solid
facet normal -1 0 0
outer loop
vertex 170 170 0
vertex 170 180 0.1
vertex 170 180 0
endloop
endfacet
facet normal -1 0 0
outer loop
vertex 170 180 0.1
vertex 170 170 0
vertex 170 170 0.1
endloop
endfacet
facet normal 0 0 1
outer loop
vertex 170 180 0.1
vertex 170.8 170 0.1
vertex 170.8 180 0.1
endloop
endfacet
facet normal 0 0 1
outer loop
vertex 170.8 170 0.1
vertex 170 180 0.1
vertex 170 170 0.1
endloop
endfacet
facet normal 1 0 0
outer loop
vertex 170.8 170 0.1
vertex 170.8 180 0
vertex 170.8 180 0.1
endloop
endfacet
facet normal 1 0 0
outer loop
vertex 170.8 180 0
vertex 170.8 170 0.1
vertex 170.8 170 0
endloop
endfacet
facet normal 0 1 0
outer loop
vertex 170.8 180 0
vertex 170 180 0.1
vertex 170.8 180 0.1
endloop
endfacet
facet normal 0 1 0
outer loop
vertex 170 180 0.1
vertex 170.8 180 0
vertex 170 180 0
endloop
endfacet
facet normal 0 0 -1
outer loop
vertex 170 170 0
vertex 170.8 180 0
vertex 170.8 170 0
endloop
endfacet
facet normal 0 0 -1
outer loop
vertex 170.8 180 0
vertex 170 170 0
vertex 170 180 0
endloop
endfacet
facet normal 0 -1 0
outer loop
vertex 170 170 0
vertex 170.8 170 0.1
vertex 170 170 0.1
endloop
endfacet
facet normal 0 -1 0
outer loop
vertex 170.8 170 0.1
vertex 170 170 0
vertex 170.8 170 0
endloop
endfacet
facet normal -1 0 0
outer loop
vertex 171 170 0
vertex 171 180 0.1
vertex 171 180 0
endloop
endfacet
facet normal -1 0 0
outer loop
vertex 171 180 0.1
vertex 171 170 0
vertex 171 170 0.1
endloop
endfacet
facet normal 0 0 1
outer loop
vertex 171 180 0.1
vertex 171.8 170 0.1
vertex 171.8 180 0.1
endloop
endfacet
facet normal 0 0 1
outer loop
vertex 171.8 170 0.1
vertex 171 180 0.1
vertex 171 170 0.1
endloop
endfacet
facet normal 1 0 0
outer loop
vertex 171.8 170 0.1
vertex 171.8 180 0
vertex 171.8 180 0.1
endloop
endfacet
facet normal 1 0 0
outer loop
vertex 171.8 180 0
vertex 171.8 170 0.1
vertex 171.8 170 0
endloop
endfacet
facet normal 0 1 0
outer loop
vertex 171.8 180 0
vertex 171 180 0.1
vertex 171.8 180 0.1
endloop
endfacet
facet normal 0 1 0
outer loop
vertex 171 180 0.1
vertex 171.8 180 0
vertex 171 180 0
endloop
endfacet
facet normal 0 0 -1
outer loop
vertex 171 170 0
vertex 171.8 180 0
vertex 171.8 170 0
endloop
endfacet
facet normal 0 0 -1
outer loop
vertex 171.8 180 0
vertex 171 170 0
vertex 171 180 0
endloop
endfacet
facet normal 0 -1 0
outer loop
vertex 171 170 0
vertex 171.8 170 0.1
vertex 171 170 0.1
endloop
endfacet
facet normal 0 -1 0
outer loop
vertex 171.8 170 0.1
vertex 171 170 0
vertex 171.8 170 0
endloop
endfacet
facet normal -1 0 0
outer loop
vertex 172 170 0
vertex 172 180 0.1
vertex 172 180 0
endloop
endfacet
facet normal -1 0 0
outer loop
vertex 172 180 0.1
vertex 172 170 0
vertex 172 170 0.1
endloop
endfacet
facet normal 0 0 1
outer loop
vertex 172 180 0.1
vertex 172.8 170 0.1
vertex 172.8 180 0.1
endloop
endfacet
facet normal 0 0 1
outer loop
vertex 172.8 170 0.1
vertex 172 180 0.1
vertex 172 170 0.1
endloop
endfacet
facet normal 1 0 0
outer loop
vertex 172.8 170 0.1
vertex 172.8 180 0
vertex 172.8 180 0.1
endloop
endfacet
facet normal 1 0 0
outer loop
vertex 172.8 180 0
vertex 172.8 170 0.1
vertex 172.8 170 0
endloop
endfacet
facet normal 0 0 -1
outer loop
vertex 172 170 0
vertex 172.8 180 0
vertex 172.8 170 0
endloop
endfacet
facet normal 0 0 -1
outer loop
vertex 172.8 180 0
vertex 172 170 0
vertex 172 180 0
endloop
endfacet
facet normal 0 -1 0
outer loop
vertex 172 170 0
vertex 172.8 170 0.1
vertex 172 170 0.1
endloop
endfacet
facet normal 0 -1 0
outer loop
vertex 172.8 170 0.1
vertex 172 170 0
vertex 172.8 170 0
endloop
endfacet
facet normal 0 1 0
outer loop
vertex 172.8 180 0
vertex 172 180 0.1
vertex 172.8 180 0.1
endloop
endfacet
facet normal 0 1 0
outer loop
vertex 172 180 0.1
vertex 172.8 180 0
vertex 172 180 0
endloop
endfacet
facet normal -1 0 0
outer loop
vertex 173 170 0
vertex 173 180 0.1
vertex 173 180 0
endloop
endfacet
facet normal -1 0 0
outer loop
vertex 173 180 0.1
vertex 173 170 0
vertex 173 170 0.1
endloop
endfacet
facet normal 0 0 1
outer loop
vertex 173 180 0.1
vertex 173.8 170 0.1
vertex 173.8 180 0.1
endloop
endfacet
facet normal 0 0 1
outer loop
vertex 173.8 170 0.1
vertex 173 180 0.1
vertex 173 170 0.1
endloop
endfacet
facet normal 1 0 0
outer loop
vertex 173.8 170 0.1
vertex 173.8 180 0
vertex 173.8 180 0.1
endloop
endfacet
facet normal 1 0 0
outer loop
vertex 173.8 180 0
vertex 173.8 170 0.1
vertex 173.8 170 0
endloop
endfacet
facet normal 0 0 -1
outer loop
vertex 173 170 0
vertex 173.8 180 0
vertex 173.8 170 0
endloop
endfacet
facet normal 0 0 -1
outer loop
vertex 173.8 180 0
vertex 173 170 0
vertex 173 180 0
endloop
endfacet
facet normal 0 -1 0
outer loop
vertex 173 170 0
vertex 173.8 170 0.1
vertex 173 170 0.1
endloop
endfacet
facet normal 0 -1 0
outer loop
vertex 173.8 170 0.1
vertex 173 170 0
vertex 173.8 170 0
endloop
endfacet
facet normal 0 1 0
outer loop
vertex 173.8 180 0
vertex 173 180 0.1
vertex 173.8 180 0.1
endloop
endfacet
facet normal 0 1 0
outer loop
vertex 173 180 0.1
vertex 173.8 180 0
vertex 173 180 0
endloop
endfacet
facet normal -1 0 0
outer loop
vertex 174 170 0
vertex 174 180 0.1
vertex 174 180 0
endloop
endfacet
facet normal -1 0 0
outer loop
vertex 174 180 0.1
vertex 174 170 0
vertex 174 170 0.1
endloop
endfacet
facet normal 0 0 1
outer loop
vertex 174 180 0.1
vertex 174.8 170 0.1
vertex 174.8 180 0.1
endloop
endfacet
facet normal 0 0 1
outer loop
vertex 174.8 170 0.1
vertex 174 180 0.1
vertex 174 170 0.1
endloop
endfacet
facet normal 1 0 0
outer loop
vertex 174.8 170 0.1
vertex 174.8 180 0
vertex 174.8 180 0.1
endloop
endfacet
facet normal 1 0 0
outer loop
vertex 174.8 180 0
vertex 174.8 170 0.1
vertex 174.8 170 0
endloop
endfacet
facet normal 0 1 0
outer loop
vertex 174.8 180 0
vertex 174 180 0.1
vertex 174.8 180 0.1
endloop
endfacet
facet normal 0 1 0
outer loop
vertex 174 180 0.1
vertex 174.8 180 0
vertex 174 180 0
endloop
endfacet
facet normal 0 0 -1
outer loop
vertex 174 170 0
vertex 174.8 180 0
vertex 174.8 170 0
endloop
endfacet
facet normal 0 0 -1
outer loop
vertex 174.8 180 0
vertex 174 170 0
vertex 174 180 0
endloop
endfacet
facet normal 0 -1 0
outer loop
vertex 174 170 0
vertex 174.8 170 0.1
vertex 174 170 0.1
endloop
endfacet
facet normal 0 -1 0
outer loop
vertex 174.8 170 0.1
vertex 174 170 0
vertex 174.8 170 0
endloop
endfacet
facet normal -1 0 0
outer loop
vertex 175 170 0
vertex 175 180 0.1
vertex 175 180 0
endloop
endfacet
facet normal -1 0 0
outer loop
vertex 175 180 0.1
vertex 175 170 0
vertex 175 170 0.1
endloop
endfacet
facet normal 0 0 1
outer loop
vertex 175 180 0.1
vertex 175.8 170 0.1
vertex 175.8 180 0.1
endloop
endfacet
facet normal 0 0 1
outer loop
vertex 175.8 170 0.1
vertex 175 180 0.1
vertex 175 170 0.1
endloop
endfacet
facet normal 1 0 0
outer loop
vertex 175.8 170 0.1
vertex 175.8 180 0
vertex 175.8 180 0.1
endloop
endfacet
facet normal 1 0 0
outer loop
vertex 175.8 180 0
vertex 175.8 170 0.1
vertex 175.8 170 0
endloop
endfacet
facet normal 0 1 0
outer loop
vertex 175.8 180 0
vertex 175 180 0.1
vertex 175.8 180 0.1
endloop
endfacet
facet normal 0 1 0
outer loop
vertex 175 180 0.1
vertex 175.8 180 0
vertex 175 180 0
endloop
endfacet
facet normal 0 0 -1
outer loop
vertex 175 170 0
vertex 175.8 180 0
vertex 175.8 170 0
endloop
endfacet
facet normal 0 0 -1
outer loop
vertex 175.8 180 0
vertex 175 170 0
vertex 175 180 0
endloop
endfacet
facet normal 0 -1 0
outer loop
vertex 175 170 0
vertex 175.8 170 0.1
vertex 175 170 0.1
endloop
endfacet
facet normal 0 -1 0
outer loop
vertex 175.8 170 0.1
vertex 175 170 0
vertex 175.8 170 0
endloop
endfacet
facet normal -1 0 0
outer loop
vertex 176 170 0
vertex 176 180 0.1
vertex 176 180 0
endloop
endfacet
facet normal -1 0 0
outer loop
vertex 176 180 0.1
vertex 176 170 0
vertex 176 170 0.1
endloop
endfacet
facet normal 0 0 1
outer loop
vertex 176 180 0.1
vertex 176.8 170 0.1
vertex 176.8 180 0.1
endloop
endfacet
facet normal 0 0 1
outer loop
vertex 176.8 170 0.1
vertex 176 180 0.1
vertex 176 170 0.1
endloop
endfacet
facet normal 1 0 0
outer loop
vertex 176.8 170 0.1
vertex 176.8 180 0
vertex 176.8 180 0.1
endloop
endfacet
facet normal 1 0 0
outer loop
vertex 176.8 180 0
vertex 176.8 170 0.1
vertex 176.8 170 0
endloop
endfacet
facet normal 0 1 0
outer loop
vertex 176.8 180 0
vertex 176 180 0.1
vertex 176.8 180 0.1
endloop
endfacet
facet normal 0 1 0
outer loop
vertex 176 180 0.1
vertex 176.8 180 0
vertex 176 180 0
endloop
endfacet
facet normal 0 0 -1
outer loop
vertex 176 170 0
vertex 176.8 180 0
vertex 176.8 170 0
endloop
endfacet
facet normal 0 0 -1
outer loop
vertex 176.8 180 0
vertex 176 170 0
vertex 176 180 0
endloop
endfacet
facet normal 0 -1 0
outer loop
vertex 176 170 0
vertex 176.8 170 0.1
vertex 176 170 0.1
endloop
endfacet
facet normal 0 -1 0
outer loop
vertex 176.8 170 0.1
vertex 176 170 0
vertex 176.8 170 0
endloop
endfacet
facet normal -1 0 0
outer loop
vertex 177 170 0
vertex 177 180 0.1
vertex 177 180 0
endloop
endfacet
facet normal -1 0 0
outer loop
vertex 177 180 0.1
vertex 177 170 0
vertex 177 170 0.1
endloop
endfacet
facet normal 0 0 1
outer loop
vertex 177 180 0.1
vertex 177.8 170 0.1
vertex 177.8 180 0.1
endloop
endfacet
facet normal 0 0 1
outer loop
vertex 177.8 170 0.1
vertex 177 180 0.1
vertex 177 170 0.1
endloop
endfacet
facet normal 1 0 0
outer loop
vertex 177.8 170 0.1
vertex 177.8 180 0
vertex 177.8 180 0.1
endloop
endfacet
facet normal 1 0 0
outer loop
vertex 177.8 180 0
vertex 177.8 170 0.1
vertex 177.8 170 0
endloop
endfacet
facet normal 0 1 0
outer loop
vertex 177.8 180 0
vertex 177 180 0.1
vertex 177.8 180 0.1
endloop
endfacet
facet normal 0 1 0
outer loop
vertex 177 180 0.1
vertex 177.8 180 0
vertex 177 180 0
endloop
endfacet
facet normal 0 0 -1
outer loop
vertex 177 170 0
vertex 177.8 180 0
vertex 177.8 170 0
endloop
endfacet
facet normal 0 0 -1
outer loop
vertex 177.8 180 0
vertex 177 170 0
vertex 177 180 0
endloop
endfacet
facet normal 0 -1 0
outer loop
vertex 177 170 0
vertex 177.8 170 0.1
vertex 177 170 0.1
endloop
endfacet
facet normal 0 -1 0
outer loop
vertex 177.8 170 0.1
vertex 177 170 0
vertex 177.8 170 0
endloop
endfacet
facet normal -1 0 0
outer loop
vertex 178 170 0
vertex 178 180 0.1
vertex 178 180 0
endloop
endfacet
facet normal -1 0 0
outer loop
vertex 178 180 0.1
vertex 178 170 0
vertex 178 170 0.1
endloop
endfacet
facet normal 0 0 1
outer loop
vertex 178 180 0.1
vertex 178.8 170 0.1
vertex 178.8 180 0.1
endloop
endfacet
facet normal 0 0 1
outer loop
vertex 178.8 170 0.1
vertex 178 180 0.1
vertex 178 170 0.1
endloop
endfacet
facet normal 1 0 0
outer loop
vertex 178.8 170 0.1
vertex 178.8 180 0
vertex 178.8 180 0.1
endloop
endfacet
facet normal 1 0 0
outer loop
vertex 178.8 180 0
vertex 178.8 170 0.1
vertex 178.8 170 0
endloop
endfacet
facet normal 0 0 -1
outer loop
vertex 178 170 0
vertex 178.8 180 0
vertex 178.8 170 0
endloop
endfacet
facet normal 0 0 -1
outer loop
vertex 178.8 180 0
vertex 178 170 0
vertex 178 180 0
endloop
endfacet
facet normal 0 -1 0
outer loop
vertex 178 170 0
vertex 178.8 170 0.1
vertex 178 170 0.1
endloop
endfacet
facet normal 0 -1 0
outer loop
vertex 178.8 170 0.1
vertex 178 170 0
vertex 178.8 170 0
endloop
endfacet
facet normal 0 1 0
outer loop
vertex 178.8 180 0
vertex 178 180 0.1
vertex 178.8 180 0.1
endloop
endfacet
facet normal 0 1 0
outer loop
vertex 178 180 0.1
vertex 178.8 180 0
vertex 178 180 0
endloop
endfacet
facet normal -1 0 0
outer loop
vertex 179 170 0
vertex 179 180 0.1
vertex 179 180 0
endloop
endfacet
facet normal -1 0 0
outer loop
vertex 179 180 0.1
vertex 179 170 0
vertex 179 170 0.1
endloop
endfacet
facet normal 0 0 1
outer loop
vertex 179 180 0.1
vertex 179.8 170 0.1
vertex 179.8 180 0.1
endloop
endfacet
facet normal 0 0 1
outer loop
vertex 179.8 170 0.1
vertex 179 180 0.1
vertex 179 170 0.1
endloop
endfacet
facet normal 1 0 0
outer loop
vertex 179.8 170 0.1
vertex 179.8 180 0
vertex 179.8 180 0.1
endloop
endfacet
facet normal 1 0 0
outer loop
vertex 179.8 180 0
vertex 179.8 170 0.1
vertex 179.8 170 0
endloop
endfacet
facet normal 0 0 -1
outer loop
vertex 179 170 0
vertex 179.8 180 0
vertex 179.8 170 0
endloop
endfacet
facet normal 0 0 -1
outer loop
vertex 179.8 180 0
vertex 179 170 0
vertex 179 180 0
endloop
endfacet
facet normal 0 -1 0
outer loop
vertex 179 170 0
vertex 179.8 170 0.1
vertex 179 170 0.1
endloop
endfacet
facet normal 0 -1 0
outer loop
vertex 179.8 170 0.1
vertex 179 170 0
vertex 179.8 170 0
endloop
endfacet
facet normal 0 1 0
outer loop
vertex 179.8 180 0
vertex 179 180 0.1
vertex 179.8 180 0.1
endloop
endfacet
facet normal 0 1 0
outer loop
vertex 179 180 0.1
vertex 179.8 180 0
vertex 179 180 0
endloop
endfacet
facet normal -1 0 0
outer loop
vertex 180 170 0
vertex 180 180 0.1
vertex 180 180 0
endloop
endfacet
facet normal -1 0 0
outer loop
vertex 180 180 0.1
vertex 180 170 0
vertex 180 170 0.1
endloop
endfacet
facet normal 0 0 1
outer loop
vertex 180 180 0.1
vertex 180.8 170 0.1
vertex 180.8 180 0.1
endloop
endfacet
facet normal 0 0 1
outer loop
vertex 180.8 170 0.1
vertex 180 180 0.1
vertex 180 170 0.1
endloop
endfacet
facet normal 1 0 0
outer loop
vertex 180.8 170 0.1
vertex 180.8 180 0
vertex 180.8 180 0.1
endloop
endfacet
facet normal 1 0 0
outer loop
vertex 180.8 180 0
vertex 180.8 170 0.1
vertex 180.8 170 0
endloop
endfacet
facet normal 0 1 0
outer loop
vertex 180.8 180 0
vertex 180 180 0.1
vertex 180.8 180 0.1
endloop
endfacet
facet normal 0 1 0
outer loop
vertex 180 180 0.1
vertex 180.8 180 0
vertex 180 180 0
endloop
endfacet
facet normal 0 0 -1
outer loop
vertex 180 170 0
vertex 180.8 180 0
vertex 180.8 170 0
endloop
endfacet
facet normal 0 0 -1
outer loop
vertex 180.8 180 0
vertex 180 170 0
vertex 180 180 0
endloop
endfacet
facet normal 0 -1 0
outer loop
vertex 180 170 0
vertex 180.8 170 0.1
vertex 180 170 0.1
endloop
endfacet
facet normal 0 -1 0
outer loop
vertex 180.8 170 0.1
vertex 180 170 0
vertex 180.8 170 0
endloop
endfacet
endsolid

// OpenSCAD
translate([10+160,10+160,0])
        for (i = [0 : 10]){
            translate([i,0,0])
                cube(size = [0.8,10,0.1]);
    }
